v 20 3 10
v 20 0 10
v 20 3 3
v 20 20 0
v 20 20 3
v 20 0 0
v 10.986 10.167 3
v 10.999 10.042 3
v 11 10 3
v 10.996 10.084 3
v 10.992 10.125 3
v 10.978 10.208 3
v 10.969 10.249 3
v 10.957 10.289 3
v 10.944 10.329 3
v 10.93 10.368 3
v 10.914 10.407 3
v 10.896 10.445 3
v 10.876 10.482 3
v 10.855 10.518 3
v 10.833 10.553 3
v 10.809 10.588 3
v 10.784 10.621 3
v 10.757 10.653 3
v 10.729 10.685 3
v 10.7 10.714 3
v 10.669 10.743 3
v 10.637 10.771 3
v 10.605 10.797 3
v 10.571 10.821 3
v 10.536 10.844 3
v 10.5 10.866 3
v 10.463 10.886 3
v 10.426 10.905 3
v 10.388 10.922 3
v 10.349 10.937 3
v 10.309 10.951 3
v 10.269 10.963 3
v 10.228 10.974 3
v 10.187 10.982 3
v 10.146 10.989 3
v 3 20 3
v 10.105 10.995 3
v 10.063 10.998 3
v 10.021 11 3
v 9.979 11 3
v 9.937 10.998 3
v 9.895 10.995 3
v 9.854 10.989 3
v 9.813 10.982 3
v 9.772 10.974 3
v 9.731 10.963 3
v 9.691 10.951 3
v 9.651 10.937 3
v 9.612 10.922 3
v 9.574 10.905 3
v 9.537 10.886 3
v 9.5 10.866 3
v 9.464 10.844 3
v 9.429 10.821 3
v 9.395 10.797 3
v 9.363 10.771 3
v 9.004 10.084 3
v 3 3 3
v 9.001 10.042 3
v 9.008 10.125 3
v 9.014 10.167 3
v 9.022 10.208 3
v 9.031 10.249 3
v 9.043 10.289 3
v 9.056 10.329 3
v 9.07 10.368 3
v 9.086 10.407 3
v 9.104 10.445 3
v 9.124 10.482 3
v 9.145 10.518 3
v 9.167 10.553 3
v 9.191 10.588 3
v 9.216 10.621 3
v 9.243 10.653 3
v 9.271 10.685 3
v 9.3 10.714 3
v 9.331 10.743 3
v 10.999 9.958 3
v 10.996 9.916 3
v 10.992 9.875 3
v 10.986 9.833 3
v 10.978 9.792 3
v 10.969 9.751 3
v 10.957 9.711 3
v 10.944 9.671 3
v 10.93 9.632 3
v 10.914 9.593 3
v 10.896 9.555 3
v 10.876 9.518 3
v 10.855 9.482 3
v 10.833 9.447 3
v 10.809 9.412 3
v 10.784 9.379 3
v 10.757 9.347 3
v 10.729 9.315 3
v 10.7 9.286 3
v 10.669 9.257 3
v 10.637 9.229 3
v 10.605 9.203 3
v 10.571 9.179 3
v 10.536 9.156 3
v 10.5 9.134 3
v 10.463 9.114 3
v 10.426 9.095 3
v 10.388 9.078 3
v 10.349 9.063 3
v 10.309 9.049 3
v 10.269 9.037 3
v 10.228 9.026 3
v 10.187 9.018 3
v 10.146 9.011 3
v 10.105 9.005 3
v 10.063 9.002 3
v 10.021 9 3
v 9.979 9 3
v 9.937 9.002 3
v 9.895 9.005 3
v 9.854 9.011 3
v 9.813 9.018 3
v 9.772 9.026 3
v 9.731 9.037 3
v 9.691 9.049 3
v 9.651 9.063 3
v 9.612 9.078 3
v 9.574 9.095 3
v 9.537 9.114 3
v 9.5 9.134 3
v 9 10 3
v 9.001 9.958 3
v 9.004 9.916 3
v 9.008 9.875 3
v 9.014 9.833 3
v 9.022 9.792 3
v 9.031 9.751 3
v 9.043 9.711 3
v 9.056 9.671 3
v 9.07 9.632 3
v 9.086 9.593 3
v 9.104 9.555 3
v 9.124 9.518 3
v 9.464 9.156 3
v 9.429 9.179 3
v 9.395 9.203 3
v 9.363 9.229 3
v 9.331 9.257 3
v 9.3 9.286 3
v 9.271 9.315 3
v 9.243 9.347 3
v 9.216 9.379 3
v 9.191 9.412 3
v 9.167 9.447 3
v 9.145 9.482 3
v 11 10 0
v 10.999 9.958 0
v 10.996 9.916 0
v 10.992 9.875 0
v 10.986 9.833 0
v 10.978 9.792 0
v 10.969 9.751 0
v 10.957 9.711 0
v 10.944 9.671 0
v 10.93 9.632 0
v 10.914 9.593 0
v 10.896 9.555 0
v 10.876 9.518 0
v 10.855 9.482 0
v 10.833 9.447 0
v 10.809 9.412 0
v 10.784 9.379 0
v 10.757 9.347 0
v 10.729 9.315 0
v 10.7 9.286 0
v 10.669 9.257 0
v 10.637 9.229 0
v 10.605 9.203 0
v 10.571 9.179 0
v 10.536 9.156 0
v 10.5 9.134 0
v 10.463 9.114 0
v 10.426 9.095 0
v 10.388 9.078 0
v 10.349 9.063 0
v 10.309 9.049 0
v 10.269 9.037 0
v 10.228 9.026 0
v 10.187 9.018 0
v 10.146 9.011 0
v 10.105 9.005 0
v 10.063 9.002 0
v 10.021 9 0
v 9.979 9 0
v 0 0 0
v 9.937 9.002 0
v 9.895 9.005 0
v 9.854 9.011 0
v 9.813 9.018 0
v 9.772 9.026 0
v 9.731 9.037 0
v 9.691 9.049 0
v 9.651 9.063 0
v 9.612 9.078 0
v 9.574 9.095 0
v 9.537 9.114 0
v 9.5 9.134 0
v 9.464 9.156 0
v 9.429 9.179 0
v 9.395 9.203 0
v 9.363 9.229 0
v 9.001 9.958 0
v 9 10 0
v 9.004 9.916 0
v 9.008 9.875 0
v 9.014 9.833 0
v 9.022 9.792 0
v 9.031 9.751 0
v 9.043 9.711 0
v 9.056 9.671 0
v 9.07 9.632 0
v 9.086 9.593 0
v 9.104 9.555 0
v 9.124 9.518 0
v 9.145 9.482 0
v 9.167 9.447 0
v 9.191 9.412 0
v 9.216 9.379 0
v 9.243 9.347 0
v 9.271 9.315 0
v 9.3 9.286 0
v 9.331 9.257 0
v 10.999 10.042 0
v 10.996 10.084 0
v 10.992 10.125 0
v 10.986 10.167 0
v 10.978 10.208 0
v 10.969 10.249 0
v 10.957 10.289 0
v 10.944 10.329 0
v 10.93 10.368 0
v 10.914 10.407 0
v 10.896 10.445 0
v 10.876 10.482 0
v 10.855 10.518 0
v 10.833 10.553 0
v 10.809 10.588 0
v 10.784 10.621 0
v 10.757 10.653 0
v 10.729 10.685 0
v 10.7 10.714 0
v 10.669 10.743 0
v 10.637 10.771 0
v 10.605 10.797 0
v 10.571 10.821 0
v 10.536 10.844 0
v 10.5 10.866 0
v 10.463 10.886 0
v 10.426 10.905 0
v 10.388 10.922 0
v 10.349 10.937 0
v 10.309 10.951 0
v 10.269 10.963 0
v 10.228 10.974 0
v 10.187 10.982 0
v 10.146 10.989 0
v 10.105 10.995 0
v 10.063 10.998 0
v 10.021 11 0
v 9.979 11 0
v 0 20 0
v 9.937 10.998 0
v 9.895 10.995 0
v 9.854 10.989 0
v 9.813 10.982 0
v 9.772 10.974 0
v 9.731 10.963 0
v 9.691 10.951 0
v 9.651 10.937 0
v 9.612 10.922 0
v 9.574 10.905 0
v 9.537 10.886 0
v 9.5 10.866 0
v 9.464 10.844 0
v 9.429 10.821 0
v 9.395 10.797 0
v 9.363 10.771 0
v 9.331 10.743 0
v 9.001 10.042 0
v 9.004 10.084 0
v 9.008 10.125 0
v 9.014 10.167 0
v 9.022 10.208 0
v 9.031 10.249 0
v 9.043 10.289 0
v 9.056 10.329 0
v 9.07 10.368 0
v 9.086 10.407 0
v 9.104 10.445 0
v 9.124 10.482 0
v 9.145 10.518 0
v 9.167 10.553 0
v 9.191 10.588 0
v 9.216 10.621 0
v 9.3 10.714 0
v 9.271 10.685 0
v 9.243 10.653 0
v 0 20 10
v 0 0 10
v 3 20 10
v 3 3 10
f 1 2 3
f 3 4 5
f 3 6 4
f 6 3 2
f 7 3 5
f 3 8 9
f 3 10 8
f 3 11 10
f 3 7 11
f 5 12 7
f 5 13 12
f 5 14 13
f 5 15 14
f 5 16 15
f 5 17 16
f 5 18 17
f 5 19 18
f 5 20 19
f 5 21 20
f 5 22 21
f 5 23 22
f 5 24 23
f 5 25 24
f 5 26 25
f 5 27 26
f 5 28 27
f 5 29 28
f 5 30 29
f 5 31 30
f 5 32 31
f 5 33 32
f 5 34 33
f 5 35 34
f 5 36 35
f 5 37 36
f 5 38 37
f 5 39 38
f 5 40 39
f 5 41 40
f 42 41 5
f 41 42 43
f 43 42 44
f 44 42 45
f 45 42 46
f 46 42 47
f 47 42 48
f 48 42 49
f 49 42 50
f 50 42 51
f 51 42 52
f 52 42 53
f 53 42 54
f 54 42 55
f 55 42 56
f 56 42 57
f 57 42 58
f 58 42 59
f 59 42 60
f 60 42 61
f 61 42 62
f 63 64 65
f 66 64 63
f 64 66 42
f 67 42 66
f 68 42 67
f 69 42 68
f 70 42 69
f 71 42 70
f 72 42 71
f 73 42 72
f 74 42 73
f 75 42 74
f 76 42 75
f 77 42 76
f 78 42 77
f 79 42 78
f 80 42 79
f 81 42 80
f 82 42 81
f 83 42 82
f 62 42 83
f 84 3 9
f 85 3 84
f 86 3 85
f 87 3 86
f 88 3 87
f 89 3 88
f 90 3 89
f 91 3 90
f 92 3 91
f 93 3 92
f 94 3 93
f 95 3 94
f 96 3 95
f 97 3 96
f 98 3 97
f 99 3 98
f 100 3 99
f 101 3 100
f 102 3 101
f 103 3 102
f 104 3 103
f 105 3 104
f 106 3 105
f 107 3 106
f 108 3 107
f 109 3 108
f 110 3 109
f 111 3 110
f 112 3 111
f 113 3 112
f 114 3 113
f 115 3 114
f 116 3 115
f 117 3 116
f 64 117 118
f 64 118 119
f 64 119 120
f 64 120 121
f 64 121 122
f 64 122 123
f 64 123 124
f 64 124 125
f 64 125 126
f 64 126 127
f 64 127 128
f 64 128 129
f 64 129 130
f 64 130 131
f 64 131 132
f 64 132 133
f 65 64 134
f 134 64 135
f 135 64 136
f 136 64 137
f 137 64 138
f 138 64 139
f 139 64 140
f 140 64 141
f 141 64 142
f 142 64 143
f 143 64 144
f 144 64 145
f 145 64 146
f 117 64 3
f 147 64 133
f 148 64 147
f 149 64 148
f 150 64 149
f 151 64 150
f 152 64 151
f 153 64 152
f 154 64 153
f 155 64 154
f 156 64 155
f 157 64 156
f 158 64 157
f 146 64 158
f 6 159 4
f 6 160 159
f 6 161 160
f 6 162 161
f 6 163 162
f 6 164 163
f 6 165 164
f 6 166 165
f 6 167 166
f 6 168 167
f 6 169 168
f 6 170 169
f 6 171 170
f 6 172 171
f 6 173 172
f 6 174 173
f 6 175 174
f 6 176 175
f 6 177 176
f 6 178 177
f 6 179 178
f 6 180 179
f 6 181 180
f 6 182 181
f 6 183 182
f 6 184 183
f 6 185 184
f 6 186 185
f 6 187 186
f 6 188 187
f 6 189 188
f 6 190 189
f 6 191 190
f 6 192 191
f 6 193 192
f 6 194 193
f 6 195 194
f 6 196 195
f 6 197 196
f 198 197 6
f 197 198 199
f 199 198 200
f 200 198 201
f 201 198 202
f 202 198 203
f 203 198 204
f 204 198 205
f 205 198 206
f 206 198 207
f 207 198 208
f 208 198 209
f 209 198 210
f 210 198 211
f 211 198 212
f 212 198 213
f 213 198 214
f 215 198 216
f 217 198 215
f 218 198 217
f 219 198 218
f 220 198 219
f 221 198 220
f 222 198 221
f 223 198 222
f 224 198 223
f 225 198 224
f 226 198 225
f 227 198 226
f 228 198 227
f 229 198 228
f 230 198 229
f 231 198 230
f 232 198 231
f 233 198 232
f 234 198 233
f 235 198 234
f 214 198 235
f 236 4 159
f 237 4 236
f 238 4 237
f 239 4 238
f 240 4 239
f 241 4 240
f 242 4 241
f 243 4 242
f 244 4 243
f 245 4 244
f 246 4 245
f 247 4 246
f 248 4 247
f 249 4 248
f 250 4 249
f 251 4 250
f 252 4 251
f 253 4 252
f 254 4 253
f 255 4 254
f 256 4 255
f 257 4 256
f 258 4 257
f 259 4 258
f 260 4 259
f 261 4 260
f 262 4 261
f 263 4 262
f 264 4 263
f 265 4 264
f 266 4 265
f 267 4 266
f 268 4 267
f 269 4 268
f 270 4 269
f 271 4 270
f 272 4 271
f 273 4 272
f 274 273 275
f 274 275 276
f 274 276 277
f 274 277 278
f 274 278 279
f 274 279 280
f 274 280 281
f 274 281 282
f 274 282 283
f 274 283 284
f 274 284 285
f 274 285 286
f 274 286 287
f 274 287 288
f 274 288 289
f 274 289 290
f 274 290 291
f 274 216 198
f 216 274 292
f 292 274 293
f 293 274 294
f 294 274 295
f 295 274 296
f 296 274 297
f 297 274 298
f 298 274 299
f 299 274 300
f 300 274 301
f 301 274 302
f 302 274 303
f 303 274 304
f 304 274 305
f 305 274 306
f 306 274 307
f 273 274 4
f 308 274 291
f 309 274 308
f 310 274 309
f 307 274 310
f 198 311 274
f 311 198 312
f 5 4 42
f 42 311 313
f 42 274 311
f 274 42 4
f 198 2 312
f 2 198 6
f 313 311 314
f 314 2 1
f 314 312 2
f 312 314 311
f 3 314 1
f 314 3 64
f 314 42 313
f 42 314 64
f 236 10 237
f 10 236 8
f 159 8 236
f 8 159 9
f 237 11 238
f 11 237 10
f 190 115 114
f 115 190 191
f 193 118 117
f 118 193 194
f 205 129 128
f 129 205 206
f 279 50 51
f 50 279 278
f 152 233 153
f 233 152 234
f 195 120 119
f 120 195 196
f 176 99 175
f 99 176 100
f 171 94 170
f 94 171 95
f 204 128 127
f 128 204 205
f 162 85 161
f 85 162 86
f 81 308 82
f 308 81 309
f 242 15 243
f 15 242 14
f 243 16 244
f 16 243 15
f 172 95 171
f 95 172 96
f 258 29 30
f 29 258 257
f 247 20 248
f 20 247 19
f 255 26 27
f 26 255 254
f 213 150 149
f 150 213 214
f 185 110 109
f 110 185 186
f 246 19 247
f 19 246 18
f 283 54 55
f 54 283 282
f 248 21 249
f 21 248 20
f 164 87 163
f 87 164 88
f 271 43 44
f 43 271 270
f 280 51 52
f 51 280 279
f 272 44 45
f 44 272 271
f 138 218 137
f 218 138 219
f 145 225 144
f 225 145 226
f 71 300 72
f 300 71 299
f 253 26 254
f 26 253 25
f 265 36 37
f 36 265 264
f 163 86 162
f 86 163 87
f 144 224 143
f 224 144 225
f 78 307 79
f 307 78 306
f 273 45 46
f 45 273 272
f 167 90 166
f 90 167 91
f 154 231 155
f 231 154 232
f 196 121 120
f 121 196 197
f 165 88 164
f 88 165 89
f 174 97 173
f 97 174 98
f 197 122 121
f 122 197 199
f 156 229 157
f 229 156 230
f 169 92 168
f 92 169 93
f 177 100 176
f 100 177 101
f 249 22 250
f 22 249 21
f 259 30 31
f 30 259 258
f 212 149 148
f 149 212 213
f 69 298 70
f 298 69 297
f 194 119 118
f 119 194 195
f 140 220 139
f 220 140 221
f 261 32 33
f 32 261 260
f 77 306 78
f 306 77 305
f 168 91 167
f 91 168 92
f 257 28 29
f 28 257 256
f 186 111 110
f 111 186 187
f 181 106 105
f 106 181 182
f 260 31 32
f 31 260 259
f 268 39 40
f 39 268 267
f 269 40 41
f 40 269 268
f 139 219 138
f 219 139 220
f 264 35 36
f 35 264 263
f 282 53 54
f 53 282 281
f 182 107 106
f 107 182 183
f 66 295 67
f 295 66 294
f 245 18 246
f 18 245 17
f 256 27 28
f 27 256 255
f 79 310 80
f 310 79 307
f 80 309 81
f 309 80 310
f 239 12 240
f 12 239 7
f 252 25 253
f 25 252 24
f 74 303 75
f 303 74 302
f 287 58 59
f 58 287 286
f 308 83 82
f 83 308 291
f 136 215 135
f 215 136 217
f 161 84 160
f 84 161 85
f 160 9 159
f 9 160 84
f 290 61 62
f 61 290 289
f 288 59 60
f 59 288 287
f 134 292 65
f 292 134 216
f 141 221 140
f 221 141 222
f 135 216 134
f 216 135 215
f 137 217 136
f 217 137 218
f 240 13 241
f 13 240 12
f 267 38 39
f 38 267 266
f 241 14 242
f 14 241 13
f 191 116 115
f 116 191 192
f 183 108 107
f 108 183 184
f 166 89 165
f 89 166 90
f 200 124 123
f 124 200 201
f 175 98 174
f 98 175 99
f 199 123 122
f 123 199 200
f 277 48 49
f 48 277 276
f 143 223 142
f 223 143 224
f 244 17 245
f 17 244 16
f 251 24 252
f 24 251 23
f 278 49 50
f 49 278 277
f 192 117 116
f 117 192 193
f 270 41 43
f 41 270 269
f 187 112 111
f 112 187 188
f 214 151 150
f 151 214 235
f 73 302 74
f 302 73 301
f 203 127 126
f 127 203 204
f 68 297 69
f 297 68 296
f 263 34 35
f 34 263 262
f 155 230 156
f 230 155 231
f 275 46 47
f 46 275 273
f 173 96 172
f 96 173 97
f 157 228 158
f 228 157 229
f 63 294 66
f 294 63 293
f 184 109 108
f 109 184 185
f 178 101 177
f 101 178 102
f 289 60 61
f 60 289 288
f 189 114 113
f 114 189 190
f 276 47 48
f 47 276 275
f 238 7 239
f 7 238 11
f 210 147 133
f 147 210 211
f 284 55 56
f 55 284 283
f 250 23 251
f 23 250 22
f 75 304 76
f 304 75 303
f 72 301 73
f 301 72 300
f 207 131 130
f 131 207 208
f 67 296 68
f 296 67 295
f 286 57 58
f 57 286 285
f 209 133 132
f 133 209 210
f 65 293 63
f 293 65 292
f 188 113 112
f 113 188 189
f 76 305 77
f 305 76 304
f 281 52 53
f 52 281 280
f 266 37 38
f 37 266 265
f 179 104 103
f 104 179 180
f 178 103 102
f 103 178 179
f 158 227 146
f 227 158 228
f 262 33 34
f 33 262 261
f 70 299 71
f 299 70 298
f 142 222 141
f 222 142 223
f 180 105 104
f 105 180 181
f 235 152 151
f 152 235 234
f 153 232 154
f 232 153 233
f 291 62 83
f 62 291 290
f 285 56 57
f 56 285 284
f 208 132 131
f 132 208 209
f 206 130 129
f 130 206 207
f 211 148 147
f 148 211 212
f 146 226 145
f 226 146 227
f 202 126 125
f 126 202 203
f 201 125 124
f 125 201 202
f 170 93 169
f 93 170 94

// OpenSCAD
$fn=150;

difference()
{
union()
{
cube([20,20,3]);
cube([20,3,10]);
cube([3,20,10]);
}
translate([10,10,0])cylinder(h=3, d=2);

}
